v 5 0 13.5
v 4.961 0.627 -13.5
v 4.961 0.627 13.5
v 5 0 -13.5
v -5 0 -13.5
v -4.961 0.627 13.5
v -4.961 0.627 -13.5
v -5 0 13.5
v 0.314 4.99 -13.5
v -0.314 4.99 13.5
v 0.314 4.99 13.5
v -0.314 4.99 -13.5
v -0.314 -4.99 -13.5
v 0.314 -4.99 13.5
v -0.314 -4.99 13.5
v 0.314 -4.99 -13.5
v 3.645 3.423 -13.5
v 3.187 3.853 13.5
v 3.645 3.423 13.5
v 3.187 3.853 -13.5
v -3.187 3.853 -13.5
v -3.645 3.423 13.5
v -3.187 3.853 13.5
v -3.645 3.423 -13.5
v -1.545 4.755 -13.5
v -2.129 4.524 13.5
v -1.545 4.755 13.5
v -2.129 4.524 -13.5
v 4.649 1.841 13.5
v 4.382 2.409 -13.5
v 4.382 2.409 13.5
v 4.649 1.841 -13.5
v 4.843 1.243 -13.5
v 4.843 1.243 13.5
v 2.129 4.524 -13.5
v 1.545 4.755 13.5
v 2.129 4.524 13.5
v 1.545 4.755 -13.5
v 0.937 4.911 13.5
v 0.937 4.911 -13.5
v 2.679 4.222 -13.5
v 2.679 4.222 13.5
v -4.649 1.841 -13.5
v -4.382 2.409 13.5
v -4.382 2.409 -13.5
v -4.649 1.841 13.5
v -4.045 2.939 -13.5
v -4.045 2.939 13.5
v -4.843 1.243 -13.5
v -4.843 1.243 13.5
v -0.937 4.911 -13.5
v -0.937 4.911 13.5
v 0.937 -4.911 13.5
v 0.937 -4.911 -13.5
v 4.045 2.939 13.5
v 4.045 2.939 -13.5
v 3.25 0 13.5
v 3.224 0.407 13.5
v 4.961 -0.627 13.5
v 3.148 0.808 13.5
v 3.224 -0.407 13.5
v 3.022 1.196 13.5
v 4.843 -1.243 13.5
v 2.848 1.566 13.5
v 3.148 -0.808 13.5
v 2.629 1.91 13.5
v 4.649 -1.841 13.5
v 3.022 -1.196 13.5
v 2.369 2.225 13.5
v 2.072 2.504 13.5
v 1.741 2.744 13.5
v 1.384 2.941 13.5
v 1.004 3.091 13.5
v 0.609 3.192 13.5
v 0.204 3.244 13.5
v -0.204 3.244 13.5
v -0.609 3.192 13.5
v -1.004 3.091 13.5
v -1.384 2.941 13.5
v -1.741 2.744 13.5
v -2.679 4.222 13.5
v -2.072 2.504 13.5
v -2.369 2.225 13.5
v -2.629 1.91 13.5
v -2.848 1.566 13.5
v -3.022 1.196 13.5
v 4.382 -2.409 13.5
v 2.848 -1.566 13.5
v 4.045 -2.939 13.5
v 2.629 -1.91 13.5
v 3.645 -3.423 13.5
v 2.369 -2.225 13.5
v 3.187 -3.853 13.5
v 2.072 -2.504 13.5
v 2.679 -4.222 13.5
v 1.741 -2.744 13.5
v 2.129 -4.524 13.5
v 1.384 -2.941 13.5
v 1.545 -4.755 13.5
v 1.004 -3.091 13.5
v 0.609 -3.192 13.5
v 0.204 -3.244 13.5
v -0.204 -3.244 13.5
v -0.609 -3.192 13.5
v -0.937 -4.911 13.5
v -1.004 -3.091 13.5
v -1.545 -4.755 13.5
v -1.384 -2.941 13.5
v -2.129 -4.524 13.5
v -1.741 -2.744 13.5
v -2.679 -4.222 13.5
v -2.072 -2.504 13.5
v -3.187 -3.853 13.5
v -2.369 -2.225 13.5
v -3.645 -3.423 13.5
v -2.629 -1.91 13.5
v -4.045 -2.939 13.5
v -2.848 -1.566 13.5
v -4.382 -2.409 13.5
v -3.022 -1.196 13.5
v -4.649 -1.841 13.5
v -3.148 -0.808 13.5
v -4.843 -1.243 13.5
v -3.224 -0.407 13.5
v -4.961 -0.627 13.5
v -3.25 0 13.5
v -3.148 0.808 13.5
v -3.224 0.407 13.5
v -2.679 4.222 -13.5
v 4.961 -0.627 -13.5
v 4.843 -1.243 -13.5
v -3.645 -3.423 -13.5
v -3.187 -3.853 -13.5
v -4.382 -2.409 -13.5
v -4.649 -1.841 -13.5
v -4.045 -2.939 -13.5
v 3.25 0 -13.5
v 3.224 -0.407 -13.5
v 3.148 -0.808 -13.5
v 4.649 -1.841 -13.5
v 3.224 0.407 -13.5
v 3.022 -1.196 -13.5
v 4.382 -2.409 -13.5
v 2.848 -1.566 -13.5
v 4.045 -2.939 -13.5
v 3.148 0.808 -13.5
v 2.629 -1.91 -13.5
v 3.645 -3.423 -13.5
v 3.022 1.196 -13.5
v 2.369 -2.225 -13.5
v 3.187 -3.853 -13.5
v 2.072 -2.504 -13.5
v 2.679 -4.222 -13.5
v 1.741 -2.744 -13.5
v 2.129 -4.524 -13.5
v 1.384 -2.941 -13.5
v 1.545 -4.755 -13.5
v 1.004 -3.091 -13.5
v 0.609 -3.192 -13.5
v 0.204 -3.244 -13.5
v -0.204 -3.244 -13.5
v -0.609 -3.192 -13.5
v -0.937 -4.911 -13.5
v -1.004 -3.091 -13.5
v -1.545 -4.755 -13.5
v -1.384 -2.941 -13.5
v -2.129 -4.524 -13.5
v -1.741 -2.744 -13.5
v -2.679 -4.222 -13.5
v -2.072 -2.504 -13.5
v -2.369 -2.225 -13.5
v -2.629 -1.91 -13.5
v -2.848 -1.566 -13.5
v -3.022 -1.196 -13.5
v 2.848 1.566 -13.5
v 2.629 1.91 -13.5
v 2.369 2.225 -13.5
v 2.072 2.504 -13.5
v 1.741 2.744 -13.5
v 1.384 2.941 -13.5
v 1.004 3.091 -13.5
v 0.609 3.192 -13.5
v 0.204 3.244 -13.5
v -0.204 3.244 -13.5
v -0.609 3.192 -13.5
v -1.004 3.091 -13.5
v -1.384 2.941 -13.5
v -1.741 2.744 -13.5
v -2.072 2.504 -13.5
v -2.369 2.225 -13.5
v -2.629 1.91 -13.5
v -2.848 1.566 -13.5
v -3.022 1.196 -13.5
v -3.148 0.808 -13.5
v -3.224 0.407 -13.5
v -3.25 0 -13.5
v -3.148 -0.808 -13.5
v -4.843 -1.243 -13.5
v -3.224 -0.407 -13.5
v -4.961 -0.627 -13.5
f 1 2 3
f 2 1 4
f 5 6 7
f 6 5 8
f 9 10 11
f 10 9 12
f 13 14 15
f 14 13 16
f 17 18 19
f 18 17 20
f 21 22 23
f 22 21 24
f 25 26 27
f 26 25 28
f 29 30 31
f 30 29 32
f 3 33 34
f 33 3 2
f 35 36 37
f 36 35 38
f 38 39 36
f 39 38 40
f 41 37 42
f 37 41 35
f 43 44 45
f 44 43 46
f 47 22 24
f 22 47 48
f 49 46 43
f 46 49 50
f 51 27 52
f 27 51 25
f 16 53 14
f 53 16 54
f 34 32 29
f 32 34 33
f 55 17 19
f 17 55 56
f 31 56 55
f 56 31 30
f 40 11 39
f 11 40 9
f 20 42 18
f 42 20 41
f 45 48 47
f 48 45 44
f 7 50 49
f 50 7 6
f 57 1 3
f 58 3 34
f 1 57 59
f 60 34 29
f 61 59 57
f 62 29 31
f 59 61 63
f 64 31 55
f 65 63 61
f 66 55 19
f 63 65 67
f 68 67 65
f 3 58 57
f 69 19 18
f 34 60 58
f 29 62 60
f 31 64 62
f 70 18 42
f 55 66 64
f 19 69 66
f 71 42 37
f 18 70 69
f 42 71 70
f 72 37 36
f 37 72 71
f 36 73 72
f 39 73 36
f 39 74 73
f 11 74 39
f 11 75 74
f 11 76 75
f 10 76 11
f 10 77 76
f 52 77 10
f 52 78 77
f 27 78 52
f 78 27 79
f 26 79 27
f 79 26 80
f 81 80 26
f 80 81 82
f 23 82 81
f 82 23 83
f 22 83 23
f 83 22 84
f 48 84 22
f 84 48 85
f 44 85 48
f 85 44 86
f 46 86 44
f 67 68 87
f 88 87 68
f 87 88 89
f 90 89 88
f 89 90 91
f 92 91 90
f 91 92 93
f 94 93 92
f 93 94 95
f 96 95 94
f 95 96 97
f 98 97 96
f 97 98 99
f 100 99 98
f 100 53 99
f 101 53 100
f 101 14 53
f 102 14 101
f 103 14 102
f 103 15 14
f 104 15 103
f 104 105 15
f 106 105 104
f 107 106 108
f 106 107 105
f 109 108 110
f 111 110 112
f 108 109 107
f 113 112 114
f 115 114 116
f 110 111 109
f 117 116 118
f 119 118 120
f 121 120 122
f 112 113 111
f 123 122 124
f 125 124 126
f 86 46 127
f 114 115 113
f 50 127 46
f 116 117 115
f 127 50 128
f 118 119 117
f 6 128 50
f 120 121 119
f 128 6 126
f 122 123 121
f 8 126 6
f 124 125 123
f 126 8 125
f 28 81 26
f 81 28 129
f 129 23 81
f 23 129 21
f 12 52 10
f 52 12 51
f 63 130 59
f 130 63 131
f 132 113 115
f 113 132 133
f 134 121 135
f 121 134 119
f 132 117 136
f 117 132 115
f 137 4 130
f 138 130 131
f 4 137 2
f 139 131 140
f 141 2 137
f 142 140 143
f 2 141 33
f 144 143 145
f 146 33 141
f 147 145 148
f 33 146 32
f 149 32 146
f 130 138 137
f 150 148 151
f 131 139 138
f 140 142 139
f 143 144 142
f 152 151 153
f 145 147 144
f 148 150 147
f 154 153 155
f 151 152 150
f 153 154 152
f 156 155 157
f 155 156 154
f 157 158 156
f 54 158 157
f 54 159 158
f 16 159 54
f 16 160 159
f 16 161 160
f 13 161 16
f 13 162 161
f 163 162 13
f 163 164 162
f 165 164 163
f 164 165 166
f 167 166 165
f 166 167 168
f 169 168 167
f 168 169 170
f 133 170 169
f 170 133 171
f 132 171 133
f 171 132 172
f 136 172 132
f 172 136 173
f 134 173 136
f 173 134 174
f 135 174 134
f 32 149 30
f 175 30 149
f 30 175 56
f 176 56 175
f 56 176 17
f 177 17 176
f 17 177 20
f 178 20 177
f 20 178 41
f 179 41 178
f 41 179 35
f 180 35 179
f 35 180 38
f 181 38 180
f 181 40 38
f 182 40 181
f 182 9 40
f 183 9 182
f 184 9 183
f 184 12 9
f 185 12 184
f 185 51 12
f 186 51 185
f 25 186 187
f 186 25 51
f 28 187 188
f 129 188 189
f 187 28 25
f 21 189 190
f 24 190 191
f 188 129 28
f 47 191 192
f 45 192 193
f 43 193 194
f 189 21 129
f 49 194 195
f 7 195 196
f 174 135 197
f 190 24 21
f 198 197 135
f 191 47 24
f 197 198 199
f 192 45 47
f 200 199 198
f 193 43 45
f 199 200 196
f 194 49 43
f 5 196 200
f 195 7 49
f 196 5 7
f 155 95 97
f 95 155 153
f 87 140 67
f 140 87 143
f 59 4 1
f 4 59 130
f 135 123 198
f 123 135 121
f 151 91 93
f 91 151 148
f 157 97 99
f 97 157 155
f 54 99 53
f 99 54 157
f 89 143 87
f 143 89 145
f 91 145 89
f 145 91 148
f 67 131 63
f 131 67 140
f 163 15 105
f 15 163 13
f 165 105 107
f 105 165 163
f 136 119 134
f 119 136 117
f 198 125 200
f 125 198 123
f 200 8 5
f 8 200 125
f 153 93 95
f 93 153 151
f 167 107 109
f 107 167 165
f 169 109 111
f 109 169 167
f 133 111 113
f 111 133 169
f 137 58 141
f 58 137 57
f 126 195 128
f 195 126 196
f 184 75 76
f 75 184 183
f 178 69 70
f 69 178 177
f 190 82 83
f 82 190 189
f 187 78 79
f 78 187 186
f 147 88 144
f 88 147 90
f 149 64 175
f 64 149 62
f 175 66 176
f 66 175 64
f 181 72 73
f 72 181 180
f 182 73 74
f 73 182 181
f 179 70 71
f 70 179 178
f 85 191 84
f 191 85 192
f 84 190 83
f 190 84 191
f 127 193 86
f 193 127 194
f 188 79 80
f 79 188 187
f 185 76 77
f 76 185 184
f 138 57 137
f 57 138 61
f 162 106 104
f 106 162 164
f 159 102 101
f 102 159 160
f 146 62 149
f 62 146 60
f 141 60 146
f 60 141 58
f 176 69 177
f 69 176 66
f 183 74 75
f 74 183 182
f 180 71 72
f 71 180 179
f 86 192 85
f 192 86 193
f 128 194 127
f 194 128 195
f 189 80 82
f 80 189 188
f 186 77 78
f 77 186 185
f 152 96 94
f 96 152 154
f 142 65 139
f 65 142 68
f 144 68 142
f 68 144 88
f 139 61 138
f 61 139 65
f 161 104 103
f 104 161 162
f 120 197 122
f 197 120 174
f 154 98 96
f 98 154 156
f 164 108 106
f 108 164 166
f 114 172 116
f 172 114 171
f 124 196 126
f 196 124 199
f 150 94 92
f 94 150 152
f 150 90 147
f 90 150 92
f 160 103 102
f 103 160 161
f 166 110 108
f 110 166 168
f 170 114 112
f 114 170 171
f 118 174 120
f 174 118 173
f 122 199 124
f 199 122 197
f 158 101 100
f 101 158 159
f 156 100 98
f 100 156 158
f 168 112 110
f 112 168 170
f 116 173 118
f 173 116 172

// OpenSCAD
$fn = 50;


difference() {
	union() {
		translate(v = [0, 0, -13.5000000000]) {
			cylinder(h = 27, r = 5.0000000000);
		}
	}
	union() {
		translate(v = [0, 0, -100.0000000000]) {
			cylinder(h = 200, r = 3.2500000000);
		}
	}
}
